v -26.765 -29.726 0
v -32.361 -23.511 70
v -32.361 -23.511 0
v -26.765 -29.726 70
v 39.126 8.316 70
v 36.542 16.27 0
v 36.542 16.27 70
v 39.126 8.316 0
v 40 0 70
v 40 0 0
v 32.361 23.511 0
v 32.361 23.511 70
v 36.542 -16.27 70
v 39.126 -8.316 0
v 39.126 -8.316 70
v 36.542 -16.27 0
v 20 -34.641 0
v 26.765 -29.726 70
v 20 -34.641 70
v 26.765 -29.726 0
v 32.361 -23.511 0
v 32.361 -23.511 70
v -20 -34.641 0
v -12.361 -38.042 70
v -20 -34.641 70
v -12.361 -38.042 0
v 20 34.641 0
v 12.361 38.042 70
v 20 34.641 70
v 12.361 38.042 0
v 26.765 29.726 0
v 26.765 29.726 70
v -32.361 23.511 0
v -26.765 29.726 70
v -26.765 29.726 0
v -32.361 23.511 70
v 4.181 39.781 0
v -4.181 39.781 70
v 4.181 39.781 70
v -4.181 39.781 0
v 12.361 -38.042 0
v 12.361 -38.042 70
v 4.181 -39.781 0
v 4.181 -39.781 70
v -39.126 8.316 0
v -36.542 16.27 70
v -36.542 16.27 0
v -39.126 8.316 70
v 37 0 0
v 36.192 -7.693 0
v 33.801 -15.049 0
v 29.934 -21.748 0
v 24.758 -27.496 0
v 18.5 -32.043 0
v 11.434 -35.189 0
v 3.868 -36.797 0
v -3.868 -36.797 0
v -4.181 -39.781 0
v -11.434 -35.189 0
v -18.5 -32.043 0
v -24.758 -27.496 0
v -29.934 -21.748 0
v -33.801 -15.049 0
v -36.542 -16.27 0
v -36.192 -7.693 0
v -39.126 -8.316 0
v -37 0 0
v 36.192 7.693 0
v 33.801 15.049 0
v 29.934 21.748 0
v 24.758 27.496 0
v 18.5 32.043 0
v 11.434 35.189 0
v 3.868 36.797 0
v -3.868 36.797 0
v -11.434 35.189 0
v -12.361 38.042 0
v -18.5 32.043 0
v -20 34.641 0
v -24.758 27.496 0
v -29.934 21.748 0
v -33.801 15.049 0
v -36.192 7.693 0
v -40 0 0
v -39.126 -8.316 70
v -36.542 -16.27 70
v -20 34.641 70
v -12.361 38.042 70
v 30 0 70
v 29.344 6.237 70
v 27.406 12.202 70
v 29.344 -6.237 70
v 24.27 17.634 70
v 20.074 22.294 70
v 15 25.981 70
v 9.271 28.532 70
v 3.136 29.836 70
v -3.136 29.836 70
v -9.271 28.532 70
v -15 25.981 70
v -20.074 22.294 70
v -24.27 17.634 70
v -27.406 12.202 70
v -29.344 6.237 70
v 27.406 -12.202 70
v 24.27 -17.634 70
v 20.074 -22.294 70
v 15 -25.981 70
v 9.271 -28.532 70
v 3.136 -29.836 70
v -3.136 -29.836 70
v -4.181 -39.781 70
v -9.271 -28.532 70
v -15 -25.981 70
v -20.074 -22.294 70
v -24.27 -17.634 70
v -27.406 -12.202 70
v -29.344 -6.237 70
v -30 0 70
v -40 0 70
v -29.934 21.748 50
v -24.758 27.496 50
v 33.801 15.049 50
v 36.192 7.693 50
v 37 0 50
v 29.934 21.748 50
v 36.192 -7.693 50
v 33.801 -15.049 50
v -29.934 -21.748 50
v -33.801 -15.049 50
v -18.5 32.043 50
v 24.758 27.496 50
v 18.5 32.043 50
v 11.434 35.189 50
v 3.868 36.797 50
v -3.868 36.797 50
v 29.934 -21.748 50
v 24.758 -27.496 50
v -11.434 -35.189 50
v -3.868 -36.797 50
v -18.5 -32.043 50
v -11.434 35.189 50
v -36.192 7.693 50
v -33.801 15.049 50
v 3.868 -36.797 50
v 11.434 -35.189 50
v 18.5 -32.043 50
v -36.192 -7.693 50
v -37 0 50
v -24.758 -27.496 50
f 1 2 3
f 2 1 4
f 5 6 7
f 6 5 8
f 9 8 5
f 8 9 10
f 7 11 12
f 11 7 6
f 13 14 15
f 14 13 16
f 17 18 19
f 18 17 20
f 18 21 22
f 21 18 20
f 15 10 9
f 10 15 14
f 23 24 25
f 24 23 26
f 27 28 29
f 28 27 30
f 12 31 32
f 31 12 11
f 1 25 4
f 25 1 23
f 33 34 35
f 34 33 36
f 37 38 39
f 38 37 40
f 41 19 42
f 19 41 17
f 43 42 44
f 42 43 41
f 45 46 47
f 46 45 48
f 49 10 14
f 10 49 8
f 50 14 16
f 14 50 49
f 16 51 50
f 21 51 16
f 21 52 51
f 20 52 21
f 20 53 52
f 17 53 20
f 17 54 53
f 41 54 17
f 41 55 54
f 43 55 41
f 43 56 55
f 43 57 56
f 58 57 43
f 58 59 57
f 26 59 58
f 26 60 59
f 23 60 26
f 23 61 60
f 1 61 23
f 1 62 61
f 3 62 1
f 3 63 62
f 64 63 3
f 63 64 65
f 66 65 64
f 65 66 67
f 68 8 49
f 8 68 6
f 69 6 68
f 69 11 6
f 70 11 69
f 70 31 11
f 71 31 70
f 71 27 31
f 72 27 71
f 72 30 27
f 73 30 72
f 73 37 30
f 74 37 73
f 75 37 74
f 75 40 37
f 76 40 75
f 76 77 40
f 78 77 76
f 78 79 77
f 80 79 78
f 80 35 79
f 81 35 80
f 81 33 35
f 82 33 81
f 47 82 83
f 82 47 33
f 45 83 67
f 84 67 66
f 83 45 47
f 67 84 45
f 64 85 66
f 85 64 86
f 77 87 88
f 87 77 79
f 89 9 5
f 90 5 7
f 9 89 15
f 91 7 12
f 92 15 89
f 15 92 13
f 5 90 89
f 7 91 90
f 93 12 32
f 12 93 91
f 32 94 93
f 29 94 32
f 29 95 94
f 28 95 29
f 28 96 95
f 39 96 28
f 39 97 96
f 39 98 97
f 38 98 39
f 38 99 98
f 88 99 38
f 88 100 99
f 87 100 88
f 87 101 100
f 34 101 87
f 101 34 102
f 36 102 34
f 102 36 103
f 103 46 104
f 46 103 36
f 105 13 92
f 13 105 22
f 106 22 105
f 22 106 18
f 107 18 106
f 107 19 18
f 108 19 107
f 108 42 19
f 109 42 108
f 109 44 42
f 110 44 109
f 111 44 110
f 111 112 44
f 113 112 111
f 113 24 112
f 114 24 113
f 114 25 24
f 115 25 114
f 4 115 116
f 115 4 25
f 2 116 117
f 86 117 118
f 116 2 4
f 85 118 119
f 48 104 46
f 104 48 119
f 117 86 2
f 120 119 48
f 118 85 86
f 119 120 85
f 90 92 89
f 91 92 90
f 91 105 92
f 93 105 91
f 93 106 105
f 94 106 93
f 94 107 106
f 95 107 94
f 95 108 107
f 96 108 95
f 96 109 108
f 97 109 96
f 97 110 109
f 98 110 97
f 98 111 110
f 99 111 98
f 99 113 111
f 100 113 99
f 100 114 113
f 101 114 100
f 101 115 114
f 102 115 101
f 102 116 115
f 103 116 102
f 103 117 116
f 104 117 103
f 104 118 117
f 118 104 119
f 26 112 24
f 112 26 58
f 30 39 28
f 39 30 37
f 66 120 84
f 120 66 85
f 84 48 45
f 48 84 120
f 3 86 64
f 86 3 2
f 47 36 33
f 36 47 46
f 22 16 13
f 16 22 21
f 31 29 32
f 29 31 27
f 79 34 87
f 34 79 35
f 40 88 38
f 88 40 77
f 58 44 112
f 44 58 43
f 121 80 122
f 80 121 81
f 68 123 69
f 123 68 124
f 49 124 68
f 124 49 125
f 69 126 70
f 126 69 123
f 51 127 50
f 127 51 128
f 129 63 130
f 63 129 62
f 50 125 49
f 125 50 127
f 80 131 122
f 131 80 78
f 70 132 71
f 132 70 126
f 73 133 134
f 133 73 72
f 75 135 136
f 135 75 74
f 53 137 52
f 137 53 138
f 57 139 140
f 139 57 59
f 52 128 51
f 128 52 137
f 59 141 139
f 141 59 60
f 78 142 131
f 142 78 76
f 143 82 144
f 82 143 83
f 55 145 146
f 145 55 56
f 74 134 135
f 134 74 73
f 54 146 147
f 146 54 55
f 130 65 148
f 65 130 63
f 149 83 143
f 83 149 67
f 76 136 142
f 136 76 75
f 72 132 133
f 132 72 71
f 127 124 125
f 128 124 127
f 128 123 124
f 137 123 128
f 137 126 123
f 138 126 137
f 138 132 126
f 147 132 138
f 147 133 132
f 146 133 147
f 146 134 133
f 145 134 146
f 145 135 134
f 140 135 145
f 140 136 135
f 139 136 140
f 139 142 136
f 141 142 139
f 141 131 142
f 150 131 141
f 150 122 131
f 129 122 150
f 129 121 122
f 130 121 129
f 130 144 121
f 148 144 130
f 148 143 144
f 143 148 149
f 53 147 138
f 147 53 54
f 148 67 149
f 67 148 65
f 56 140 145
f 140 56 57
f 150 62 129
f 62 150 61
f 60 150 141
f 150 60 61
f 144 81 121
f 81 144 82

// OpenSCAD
// Vase parameters
vase_height = 100;
vase_diameter = 80;
neck_height = 20;
neck_diameter = 60;
base_height = 10;
base_diameter = 60;
wall_thickness = 3;

module vase_body(height, diameter, wall_thickness) {
  difference() {
    cylinder(h = height, d = diameter, center = false);
    cylinder(h = height - neck_height, d = diameter - 2 * wall_thickness, center = false);
  }
}

module vase_neck(height, diameter) {
  difference() {
    cylinder(h = height, d = diameter, center = false);
    cylinder(h = height - neck_height, d = diameter - 2 * wall_thickness, center = false);
  }
}

module vase_base(diameter, height) {
  difference() {
    cylinder(h = height, d = diameter, center = false);
    cylinder(h = height - base_height, d = diameter - 2 * wall_thickness, center = false);
  }
}

difference() {
  vase_body(vase_height - neck_height - base_height, vase_diameter, wall_thickness);
  translate([0, 0, vase_height - neck_height - base_height]) vase_neck(neck_height, neck_diameter);
  translate([0, 0, vase_height - neck_height - base_height]) vase_base(base_diameter, base_height);
}
